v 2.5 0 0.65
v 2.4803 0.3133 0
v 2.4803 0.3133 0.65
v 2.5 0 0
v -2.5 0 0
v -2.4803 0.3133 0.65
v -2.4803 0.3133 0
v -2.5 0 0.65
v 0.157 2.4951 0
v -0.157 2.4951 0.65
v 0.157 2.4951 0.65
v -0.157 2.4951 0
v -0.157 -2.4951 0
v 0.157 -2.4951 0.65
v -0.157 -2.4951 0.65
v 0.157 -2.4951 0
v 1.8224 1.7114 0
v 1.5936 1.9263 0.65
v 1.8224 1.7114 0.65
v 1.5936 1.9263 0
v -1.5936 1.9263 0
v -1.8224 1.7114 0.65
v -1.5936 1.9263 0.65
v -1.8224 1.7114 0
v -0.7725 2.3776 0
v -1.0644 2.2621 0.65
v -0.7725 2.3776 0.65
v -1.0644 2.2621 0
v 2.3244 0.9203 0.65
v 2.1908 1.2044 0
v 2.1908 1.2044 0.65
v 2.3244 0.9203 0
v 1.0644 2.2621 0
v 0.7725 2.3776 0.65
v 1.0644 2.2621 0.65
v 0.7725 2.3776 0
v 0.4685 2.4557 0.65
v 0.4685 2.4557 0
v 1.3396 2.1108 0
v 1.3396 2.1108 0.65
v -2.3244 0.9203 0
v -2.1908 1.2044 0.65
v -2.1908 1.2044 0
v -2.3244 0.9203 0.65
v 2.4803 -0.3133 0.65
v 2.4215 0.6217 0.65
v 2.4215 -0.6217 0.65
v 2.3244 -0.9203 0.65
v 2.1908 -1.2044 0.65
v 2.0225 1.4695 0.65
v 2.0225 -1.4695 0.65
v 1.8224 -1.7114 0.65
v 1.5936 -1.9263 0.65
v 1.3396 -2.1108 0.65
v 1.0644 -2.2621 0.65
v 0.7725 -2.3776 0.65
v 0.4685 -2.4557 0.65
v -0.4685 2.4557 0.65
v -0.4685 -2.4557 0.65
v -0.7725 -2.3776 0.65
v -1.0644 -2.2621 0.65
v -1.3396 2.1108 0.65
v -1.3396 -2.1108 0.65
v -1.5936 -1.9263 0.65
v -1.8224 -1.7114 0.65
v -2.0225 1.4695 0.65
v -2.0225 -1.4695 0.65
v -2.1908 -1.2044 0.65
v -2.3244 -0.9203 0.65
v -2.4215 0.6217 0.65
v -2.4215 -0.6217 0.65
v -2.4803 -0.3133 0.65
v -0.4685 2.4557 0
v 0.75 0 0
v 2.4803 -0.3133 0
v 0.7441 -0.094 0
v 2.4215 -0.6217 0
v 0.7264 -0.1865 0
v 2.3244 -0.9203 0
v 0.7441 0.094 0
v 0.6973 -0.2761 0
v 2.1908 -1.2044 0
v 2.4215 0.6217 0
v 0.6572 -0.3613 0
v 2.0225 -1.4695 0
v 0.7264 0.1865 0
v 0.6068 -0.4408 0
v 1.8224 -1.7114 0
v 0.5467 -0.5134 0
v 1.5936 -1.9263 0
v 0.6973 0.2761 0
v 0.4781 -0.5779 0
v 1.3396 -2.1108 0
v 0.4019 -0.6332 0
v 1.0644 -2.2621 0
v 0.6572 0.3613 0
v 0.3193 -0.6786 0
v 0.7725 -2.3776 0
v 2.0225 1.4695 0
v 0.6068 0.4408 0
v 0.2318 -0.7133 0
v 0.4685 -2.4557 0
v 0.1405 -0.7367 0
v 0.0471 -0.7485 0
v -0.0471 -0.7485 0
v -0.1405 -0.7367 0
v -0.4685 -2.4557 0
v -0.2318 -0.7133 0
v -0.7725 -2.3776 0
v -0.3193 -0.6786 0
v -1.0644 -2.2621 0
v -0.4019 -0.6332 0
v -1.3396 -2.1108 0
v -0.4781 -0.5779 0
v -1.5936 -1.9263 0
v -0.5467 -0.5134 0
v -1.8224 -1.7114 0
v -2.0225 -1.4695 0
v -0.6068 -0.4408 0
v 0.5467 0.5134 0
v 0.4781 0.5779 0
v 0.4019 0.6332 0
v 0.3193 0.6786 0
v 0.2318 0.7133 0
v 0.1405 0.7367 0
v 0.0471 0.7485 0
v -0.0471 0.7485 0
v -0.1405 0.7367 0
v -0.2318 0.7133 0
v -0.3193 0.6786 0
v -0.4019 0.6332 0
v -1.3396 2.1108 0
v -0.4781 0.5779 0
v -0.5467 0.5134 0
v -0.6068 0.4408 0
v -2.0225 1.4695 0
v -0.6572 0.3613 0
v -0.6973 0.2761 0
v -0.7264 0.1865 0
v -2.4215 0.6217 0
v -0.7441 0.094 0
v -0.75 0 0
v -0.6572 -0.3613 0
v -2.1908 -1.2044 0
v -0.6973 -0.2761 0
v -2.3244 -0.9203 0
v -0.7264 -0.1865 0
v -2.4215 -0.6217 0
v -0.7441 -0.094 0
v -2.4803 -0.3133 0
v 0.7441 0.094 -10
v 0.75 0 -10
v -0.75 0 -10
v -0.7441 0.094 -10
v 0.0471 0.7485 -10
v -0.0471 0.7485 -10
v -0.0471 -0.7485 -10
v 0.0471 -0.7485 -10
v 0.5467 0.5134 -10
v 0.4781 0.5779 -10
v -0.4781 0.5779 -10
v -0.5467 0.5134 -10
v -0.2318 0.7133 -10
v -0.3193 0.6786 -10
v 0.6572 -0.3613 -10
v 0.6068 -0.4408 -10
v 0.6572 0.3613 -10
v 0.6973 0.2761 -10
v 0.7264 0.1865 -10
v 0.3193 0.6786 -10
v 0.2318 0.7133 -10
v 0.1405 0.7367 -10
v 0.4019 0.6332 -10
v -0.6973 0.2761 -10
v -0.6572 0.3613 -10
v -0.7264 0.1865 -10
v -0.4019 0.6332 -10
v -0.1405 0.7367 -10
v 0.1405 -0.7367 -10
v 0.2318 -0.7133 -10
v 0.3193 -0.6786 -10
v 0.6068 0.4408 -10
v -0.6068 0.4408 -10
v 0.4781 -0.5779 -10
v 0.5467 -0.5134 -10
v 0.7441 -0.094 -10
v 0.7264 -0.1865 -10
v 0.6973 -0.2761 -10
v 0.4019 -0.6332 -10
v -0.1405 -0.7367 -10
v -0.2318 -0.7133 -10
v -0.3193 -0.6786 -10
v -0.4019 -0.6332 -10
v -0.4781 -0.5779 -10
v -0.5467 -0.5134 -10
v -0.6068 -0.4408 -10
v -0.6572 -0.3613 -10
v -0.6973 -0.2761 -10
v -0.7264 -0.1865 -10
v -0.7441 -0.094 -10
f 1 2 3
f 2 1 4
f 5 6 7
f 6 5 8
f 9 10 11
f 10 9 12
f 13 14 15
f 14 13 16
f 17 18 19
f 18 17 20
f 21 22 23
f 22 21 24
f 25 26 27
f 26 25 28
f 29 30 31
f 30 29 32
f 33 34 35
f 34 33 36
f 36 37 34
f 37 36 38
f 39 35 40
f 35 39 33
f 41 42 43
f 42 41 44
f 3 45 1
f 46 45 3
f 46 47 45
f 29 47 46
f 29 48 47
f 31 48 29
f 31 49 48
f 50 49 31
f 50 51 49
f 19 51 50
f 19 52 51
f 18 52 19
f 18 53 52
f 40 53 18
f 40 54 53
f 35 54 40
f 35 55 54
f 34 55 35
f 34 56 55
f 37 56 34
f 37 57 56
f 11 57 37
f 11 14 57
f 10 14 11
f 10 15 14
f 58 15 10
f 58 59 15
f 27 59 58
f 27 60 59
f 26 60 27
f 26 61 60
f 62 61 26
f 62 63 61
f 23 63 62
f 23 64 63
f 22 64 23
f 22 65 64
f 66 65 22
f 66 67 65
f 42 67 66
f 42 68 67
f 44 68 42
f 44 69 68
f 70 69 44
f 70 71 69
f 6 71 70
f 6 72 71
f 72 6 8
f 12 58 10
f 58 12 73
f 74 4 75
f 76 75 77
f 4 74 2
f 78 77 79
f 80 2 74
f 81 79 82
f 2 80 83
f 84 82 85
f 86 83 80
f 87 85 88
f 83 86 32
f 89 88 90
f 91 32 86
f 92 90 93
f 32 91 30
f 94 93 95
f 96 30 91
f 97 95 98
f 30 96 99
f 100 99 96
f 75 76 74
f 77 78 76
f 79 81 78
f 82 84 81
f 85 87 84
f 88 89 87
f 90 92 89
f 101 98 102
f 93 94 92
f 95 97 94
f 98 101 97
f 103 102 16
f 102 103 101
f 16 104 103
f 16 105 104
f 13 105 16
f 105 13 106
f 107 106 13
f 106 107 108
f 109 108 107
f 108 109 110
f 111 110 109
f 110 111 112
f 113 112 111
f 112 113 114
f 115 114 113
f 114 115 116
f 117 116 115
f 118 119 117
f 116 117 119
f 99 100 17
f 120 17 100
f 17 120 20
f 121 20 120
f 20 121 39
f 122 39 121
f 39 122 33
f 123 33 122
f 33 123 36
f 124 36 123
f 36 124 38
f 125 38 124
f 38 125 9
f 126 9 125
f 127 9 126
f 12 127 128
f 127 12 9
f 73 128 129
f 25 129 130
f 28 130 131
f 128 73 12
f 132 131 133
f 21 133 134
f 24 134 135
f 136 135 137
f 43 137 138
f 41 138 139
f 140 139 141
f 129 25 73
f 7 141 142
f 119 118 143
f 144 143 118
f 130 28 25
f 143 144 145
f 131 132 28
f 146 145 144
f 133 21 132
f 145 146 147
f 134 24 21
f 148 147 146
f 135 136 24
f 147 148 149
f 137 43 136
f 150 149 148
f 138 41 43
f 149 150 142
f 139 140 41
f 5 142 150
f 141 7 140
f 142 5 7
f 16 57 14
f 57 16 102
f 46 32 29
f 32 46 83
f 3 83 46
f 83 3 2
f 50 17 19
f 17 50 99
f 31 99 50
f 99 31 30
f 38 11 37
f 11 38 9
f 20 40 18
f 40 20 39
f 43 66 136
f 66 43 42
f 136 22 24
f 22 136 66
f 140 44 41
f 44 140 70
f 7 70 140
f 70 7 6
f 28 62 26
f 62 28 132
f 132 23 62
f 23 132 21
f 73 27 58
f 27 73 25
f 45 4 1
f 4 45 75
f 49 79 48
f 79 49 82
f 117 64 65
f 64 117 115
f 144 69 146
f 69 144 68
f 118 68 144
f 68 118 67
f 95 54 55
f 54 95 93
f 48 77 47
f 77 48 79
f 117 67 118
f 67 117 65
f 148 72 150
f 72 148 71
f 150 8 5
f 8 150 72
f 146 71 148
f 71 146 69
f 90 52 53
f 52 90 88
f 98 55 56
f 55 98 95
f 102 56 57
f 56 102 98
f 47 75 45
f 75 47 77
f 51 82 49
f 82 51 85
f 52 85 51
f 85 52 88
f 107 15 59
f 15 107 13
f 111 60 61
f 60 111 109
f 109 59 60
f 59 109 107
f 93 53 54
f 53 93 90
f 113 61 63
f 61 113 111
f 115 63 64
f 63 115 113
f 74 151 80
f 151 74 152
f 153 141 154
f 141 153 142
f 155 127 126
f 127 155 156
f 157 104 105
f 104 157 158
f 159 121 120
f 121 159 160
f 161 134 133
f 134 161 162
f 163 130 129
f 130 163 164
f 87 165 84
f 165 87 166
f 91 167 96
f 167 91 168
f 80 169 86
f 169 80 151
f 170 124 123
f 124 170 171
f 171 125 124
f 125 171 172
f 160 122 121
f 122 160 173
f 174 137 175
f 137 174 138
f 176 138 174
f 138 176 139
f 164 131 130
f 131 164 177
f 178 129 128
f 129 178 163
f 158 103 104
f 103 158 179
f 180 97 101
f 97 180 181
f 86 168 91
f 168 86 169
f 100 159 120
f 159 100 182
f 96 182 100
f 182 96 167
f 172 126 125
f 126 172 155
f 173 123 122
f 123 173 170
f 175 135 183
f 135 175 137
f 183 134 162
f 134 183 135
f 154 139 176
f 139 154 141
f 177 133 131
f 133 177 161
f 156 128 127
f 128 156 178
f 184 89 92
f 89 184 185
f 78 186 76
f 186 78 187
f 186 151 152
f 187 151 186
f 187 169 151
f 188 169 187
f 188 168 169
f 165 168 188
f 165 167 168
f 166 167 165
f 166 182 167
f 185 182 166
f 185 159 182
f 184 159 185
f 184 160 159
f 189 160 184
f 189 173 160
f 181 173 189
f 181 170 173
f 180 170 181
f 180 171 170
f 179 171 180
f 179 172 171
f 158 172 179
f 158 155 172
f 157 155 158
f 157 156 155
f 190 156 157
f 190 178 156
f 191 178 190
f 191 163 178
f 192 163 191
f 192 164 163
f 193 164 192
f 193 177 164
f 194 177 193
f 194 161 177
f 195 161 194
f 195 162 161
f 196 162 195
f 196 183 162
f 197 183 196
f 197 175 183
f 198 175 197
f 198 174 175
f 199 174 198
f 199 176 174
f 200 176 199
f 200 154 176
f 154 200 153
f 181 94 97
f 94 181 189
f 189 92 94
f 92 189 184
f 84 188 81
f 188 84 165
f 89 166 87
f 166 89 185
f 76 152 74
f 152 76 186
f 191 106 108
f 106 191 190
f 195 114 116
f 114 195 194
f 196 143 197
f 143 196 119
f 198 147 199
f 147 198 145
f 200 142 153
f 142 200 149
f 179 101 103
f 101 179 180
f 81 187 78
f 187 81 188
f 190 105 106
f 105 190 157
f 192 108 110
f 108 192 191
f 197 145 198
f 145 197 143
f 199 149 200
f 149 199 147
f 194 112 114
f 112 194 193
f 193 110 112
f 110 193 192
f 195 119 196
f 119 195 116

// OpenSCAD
$fn = 50;


difference() {
	union() {
		translate(v = [0, 0, 0]) {
			rotate(a = [0, 0, 0]) {
				cylinder(h = 0.6500000000, r = 2.5000000000);
			}
		}
		translate(v = [0, 0, -10]) {
			rotate(a = [0, 0, 0]) {
				cylinder(h = 10, r = 0.7500000000);
			}
		}
	}
	union();
}
